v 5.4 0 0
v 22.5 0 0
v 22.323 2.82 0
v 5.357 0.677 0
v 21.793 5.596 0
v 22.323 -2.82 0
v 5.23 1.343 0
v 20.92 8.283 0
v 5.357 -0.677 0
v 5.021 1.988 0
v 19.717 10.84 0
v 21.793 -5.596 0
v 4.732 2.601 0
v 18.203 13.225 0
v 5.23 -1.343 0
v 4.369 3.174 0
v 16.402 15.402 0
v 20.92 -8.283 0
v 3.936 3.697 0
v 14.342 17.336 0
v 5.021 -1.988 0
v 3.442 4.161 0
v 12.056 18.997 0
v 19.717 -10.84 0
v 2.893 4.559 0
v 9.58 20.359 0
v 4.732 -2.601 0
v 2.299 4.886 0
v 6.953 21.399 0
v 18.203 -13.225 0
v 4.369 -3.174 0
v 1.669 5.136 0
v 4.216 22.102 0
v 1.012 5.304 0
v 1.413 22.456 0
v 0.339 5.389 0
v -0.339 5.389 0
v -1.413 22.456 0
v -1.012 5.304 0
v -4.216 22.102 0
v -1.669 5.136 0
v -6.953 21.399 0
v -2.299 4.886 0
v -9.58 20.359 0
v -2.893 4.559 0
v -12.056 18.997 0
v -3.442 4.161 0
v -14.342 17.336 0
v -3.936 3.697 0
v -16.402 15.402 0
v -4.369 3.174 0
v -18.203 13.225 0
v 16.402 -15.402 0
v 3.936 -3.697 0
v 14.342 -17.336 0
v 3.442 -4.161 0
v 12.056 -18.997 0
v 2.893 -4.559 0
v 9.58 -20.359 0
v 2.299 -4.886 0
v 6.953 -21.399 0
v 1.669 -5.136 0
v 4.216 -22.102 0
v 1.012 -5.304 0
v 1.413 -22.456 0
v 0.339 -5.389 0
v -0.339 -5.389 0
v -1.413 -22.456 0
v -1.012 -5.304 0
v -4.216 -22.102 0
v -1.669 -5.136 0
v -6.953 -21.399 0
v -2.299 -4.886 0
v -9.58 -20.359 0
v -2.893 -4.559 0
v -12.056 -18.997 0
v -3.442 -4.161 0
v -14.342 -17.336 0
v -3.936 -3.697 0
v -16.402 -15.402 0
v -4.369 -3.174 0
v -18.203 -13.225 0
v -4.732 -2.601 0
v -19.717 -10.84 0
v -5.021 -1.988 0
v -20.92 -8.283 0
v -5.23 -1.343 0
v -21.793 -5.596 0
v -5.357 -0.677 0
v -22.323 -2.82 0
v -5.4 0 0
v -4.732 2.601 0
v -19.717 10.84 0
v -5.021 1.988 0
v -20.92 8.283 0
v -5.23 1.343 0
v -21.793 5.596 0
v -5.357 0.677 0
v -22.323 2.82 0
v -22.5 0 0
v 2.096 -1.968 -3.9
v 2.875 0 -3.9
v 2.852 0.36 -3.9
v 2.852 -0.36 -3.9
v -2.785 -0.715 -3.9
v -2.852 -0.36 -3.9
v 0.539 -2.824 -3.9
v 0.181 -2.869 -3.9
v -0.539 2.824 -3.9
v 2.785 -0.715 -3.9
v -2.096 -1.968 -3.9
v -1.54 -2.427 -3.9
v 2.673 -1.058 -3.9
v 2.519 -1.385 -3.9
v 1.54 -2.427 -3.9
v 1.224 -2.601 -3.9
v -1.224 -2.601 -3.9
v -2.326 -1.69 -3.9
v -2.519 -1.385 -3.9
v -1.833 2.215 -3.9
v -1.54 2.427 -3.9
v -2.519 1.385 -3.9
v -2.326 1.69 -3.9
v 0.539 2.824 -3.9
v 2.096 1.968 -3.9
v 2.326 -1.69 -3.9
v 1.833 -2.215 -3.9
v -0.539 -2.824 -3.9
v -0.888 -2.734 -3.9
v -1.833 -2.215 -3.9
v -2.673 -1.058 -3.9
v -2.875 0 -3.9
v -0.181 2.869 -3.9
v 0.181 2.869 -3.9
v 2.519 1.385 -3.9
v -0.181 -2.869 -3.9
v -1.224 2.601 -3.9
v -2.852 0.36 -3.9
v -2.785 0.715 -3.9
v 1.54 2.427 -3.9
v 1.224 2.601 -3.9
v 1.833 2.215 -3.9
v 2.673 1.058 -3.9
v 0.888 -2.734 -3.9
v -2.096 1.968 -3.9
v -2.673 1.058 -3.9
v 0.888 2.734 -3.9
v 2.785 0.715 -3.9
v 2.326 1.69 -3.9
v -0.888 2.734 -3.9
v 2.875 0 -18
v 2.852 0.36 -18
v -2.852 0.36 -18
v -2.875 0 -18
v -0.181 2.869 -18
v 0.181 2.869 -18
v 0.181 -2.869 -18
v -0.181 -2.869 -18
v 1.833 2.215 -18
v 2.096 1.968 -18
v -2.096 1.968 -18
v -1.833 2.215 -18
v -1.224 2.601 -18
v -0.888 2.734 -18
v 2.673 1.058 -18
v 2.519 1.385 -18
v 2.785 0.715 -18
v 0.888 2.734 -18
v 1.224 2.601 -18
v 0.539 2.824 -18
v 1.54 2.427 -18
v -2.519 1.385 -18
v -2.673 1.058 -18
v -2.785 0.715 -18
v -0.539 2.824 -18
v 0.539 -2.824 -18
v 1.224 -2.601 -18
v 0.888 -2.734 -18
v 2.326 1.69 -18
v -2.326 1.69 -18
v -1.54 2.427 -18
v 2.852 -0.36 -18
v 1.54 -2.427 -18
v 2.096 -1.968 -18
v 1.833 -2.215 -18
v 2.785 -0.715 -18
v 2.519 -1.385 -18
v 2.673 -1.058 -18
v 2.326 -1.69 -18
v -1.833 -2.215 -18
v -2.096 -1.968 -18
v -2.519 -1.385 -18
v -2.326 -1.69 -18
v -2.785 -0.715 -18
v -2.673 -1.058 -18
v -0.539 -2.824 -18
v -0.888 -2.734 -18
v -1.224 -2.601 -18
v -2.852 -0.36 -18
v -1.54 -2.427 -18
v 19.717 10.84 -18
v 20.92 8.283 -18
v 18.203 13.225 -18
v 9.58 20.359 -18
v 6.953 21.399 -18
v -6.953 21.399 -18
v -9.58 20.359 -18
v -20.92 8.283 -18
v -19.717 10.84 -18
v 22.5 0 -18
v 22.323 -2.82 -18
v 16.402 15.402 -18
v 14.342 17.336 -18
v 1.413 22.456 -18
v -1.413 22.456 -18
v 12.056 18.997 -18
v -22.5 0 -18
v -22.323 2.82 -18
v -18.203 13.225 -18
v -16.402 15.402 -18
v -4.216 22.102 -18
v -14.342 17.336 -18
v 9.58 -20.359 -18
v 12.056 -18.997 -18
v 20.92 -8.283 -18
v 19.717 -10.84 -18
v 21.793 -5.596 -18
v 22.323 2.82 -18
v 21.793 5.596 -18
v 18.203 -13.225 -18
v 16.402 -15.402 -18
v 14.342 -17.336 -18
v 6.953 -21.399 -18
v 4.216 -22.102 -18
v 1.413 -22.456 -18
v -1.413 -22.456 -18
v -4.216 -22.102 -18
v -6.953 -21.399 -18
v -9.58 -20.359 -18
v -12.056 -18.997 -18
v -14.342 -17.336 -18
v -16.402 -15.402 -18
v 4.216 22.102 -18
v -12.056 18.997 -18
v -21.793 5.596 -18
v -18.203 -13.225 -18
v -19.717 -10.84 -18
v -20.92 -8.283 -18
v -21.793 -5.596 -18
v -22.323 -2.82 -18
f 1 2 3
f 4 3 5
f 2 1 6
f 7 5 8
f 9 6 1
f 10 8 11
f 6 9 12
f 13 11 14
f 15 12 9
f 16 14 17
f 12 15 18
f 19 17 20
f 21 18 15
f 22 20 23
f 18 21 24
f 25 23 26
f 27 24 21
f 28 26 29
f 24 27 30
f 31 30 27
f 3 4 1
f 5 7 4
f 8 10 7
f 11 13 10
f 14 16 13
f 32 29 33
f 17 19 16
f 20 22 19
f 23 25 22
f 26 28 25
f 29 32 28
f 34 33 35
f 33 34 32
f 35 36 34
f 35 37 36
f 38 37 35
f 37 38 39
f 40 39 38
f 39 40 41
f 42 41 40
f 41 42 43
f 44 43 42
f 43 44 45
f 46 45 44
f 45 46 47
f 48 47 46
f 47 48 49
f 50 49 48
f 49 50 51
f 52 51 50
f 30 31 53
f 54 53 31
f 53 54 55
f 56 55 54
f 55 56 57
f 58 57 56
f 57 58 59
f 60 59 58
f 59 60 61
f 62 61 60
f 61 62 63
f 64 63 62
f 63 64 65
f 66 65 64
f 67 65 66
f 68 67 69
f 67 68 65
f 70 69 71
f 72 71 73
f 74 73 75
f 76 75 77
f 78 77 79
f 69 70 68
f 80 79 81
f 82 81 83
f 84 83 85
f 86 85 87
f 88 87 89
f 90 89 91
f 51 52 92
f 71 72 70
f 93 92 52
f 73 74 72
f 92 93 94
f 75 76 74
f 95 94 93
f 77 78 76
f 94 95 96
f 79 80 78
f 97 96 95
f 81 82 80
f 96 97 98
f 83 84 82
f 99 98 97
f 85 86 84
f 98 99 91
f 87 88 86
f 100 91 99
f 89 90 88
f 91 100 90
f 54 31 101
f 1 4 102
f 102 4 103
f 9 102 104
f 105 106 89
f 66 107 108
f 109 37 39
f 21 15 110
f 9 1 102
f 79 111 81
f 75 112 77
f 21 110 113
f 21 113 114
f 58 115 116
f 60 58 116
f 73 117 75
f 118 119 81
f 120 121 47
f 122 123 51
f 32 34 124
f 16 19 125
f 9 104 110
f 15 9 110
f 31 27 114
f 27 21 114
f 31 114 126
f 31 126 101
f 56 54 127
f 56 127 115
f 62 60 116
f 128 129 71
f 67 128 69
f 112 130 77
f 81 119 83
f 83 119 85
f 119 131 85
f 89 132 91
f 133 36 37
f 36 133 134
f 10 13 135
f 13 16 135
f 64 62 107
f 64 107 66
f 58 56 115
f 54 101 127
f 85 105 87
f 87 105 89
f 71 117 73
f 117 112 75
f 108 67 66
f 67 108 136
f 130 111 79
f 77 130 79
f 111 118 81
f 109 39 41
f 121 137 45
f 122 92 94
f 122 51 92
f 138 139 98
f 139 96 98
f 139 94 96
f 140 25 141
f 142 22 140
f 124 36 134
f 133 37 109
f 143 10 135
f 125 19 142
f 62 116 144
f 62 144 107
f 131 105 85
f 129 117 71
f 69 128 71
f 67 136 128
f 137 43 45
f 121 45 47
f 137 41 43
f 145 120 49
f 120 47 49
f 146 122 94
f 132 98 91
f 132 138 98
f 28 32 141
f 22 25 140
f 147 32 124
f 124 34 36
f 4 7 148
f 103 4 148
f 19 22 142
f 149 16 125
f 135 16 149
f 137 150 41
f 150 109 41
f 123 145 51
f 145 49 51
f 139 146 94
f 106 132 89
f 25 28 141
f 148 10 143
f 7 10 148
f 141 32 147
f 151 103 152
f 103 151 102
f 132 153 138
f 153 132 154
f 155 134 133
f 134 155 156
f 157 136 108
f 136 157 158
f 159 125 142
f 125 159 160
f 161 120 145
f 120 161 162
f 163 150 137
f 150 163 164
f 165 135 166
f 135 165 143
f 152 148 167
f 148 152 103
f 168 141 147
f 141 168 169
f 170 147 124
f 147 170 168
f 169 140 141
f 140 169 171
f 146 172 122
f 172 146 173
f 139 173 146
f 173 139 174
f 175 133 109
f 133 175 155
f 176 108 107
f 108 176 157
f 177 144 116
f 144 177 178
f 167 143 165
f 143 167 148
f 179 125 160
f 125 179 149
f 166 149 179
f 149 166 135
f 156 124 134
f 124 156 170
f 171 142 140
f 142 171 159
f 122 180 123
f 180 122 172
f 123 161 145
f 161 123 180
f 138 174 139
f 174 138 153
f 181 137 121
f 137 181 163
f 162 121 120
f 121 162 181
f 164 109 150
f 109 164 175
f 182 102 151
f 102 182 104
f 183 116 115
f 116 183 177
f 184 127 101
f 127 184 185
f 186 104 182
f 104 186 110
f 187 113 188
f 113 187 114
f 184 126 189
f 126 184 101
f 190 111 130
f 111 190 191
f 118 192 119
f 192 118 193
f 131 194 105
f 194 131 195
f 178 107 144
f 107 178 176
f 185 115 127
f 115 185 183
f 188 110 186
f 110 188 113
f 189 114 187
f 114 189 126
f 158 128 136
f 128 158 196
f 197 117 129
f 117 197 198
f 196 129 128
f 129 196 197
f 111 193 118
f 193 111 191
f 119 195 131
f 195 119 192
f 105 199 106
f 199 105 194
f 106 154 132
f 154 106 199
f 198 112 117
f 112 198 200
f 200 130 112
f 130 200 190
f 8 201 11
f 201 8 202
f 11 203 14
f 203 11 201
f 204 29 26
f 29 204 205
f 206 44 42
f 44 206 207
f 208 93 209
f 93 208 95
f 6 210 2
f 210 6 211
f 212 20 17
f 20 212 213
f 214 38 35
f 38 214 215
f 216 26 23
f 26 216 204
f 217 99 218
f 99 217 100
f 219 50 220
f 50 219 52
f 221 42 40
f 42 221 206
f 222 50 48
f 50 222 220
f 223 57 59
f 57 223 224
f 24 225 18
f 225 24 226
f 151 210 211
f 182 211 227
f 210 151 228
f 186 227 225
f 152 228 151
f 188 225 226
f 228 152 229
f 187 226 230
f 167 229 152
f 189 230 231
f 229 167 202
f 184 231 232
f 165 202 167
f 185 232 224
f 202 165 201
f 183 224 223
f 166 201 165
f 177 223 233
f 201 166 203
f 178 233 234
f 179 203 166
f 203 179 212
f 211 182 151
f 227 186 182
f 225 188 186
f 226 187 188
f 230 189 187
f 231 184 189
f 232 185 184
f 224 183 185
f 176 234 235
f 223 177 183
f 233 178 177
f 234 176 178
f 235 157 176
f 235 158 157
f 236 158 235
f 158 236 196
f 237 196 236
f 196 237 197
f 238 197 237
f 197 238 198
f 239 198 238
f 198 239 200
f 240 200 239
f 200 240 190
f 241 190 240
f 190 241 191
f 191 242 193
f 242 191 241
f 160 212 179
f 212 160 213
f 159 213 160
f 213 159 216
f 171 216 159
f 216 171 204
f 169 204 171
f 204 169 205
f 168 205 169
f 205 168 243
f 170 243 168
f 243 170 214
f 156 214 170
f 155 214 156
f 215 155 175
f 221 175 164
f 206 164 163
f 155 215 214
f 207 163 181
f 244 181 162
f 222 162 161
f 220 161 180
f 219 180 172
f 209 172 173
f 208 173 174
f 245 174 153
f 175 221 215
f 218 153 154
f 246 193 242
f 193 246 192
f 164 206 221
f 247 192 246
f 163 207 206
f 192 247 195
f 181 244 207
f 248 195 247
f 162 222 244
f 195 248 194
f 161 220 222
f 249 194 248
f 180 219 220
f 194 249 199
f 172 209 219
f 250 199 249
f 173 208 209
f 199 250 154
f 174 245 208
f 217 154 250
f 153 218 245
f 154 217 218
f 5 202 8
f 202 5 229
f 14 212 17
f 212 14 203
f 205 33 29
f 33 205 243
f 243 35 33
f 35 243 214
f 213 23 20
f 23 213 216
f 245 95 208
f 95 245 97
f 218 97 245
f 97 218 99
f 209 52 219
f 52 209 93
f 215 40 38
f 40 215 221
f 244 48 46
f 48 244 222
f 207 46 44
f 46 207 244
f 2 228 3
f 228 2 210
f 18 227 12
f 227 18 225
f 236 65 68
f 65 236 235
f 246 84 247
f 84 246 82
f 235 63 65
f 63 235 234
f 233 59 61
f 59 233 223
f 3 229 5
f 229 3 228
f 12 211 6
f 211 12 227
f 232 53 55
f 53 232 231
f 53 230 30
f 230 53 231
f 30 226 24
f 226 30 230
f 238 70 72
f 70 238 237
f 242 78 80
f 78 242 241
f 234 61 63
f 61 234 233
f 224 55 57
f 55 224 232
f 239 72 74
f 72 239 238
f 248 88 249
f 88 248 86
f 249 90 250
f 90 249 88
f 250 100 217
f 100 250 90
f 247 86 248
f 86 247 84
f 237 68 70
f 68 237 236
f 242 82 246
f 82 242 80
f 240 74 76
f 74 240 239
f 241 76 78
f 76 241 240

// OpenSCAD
$fn = 50;


difference() {
	union() {
		translate(v = [0, 0, -18.0000000000]) {
			cylinder(h = 18, r = 22.5000000000);
		}
	}
	union() {
		translate(v = [0, 0, 0]) {
			rotate(a = [0, 0, 0]) {
				difference() {
					union() {
						translate(v = [0, 0, -21.0000000000]) {
							cylinder(h = 21, r = 2.6000000000);
						}
						translate(v = [0, 0, -3.9000000000]) {
							cylinder(h = 3.9000000000, r1 = 2.8750000000, r2 = 5.4000000000);
						}
						translate(v = [0, 0, -21.0000000000]) {
							cylinder(h = 21, r = 2.8750000000);
						}
						translate(v = [0, 0, -21.0000000000]) {
							cylinder(h = 21, r = 2.6000000000);
						}
					}
					union();
				}
			}
		}
	}
}
